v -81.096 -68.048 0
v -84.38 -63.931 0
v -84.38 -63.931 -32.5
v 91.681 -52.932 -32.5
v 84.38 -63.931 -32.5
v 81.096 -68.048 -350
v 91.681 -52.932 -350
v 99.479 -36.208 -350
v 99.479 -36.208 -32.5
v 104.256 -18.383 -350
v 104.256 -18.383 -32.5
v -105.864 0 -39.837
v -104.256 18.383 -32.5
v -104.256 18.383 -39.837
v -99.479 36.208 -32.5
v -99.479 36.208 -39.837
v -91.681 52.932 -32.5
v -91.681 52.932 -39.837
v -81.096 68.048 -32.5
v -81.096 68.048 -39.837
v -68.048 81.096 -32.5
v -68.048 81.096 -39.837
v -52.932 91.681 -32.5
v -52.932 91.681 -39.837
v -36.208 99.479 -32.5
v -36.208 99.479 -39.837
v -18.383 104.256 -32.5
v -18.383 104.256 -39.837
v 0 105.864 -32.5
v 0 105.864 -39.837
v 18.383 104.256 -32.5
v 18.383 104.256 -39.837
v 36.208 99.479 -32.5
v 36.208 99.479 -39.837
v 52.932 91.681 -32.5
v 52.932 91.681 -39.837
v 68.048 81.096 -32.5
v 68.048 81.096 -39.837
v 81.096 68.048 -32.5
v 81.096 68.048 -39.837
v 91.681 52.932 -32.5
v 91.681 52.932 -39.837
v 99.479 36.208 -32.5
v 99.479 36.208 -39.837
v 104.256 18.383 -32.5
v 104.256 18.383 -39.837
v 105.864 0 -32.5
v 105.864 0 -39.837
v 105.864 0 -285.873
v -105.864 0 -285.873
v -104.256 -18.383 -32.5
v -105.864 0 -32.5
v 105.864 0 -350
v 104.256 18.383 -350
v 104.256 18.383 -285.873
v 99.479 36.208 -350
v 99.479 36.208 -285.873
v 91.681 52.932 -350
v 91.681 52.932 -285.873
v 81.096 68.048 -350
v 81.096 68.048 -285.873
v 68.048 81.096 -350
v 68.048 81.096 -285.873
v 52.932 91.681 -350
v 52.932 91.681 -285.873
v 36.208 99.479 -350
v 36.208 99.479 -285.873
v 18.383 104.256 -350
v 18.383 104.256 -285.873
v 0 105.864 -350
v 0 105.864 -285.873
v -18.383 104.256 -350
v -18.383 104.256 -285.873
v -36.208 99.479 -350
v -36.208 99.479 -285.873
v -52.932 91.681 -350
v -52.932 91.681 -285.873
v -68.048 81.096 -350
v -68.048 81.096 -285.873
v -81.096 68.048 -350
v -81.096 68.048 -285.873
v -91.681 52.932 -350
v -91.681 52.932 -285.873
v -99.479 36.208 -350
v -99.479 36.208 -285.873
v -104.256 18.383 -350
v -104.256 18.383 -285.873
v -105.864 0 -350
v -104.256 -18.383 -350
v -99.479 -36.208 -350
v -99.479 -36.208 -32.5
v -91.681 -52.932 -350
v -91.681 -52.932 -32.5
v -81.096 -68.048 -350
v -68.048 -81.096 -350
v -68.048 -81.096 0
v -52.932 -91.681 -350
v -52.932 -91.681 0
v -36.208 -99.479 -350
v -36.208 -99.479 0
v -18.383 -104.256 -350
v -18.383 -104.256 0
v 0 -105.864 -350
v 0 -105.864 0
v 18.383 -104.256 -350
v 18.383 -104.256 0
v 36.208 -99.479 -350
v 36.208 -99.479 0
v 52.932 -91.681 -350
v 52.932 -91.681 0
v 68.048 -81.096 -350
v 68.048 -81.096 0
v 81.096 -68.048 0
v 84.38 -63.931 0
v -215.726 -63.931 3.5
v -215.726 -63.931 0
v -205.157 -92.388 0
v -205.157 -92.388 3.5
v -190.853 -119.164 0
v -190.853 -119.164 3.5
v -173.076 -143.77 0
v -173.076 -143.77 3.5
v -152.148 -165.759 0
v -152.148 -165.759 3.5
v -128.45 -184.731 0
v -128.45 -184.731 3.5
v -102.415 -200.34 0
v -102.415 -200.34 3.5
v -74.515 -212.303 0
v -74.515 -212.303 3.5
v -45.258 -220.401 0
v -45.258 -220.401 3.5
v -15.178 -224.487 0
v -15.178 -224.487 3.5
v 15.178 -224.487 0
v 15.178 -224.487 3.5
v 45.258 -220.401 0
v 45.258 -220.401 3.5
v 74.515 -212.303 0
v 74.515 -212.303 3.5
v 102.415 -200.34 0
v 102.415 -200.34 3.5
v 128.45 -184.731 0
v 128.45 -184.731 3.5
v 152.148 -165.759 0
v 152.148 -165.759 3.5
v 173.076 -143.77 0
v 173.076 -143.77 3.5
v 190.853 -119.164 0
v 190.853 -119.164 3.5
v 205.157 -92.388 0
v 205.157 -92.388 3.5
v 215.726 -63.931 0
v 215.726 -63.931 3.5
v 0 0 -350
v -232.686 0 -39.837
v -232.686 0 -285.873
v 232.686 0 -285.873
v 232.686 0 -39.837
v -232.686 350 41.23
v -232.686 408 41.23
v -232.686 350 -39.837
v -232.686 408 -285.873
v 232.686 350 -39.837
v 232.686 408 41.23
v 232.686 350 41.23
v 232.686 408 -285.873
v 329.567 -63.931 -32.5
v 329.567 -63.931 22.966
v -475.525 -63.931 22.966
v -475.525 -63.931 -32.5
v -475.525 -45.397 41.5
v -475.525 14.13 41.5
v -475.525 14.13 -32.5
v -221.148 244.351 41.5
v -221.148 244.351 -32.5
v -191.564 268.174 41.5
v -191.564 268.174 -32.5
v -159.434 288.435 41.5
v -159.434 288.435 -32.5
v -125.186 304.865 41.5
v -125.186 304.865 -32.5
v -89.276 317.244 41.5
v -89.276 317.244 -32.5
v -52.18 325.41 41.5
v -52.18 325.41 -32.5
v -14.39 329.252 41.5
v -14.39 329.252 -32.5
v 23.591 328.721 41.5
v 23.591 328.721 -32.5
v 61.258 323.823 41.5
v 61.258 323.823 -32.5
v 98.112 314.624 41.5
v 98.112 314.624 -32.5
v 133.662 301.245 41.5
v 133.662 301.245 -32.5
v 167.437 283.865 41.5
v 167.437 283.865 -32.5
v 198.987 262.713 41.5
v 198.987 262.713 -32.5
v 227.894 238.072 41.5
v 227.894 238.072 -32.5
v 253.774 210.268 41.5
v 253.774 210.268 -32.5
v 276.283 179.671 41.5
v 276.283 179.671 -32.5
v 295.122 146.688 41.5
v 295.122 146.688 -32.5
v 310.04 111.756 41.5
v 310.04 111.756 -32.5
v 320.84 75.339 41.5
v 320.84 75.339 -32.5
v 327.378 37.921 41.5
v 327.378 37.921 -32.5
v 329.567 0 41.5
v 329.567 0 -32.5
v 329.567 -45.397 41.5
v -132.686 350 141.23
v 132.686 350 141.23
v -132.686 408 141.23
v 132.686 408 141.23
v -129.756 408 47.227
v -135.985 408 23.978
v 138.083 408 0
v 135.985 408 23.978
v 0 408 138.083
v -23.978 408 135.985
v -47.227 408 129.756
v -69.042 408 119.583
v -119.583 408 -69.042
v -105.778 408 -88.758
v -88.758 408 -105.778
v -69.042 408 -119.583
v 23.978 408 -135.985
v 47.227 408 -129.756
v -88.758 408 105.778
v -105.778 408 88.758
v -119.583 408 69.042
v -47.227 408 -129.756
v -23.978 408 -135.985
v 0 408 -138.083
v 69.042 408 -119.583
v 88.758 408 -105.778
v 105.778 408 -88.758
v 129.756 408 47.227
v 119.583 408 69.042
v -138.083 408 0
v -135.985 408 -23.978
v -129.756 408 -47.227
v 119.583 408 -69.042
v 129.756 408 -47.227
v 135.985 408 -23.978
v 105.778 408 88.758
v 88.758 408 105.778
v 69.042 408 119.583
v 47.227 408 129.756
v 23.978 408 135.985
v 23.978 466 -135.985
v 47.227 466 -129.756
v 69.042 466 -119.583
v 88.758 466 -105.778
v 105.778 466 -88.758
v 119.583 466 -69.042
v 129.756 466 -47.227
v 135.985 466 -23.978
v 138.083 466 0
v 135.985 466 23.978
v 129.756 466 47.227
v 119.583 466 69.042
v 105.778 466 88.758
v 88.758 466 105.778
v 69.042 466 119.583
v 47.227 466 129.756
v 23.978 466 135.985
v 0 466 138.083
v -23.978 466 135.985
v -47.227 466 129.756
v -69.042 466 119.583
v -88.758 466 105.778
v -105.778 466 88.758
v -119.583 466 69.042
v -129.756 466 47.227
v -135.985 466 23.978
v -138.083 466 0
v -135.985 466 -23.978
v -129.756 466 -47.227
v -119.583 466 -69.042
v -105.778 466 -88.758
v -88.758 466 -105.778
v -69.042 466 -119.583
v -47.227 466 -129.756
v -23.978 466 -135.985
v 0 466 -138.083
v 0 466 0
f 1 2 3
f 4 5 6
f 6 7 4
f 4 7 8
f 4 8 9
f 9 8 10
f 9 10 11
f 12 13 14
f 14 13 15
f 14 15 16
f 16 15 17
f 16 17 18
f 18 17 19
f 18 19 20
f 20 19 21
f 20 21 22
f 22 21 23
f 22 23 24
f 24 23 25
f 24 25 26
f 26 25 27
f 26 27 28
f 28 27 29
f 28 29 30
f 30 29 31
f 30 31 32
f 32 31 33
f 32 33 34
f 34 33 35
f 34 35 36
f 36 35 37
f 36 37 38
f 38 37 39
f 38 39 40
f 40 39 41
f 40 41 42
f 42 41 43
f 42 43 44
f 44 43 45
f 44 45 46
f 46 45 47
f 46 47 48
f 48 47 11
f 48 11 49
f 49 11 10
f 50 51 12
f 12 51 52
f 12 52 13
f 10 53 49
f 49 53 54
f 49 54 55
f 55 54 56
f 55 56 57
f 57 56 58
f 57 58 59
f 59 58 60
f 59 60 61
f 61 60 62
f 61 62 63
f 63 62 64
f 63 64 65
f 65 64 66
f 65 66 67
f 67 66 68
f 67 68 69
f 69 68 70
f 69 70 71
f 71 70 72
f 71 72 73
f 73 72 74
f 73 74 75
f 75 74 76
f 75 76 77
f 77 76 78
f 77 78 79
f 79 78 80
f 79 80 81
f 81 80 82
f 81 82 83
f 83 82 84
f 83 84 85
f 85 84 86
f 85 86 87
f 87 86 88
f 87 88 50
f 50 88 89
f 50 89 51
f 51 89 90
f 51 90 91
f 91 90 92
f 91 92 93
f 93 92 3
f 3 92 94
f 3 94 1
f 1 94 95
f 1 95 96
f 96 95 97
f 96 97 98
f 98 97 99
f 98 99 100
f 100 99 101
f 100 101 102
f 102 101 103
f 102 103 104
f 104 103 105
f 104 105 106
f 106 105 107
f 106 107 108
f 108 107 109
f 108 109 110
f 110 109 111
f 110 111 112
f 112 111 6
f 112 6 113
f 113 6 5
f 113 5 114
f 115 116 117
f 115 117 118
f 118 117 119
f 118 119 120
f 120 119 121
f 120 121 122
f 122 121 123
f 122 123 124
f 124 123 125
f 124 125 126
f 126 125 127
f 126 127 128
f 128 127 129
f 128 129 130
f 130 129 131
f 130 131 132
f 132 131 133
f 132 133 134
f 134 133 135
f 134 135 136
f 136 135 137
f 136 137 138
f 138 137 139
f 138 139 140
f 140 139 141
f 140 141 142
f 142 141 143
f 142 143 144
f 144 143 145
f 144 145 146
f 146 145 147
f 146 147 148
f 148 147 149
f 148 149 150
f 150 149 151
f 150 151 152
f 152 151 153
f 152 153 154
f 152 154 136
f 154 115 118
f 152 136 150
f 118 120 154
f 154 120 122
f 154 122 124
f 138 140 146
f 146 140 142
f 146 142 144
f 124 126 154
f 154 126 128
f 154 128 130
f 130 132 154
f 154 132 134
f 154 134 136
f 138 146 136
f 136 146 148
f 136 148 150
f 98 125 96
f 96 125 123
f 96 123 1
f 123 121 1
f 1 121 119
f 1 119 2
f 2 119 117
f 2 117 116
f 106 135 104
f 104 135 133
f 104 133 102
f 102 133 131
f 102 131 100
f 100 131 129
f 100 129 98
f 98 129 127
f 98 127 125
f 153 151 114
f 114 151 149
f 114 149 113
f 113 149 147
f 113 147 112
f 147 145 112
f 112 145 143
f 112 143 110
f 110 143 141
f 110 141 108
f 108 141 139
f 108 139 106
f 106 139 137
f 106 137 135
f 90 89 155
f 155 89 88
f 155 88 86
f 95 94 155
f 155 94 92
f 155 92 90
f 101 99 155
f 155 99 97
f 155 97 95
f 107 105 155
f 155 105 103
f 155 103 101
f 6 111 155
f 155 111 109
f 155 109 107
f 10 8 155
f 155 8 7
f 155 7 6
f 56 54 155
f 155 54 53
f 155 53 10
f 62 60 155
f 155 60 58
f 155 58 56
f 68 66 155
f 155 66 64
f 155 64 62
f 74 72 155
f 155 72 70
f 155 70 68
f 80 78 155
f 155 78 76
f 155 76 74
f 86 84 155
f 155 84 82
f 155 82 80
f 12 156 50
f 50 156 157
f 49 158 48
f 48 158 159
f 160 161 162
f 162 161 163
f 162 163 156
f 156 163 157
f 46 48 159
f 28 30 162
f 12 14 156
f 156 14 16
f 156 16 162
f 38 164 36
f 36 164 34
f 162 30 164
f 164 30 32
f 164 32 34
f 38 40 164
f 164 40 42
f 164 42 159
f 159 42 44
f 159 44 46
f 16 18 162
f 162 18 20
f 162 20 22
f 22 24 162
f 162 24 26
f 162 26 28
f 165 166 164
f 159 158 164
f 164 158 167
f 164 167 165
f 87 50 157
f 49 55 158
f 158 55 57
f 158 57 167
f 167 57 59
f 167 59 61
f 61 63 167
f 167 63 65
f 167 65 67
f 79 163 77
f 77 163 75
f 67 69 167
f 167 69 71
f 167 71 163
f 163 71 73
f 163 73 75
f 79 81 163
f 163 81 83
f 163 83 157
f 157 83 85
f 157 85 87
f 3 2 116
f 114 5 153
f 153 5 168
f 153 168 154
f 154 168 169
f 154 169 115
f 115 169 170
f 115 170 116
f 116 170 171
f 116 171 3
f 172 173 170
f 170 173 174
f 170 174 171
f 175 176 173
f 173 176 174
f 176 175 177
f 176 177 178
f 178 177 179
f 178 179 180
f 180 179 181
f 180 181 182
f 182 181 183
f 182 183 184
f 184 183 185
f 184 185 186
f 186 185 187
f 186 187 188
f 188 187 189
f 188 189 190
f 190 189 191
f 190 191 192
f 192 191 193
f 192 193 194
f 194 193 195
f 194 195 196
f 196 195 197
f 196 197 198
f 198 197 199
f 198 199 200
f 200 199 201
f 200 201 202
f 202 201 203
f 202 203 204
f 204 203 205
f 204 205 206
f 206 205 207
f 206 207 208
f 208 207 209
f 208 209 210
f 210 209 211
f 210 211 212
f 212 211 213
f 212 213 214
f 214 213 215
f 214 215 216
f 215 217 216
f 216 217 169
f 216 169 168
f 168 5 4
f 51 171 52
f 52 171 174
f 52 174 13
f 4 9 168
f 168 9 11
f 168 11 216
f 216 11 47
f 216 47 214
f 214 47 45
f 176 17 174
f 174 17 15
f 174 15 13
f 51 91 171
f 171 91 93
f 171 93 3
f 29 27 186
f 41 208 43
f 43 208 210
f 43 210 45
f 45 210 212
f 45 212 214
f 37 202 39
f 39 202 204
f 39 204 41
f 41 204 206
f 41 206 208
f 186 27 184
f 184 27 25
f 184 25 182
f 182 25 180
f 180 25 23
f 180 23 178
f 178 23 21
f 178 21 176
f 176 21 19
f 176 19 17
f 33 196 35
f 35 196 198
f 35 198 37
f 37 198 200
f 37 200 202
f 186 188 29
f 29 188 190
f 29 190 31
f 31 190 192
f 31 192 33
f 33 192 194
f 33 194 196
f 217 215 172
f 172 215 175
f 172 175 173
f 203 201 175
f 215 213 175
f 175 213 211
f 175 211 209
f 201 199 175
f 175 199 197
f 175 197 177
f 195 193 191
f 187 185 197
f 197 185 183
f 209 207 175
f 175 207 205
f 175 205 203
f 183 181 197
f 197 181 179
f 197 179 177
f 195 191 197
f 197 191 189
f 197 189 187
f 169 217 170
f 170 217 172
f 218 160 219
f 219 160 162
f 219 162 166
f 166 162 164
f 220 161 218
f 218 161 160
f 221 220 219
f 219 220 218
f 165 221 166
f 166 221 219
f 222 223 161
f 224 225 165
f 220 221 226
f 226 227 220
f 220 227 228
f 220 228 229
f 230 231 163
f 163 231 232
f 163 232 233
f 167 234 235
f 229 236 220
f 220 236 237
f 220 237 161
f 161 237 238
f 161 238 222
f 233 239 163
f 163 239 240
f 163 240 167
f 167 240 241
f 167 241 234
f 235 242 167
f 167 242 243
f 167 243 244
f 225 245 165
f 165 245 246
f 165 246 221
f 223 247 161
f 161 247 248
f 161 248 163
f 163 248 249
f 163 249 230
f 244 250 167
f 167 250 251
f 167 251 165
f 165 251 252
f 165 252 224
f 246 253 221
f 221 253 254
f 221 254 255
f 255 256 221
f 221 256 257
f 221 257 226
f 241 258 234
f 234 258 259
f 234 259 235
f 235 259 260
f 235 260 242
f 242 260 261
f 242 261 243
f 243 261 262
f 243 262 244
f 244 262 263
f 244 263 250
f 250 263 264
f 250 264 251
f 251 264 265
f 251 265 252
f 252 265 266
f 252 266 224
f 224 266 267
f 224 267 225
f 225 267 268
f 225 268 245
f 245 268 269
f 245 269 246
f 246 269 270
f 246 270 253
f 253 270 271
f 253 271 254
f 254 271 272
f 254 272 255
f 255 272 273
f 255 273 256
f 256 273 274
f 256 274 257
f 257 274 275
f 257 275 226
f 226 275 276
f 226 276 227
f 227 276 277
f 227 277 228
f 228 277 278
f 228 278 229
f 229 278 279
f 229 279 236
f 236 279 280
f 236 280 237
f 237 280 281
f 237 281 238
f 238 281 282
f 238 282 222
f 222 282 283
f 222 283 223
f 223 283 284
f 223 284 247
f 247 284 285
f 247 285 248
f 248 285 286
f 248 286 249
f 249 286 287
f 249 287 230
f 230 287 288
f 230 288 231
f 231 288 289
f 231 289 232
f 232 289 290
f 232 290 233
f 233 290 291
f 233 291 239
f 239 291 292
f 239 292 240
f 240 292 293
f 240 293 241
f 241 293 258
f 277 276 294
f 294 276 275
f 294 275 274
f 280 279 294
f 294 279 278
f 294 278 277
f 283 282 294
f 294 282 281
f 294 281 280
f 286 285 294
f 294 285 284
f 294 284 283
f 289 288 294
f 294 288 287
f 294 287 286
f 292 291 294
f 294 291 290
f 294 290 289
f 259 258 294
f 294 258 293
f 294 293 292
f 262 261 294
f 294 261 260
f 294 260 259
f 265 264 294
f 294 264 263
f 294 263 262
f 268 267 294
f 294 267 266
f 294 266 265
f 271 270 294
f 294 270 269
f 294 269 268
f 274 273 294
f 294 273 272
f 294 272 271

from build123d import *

# Parameters (mm, degrees)
SKETCH1_R                = 225
BOSS_EXTRUDE1_DEPTH      = 3.5
SKETCH2_R                = 105.863842181
BOSS_EXTRUDE2_DEPTH      = 350
SKETCH3_W                = 465.371554394
SKETCH3_H                = 246.036459022
BOSS_EXTRUDE3_DEPTH      = 350
BOSS_EXTRUDE4_DEPTH      = 38
BOSS_EXTRUDE4_DEPTH_BACK = 36
CUT_EXTRUDE1_DEPTH       = 1011
BOSS_EXTRUDE5_DEPTH      = 58
SKETCH7_R                = 138.083103167
BOSS_EXTRUDE6_DEPTH      = 58


with BuildPart() as part:
    # Sketch1 → Boss-Extrude1 (new body)
    with BuildSketch(Plane.XY):
        Circle(SKETCH1_R)
    extrude(amount=BOSS_EXTRUDE1_DEPTH)

    # Sketch2 → Boss-Extrude2 (add)
    with BuildSketch(Plane(origin=(0, 0, 0), x_dir=(-1, 0, 0), z_dir=(0, 0, -1))):
        Circle(SKETCH2_R)
    extrude(amount=BOSS_EXTRUDE2_DEPTH)

    # Sketch3 → Boss-Extrude3 (add)
    with BuildSketch(Plane(origin=(0, 0, 0), x_dir=(1, 0, 0), z_dir=(0, 1, 0))):
        with Locations((0, 162.855088027)):
            Rectangle(SKETCH3_W, SKETCH3_H)
    extrude(amount=BOSS_EXTRUDE3_DEPTH)

    # Sketch4 → Boss-Extrude4 (add, two sides: drawn at the far end of the back side and taken through both)
    with BuildSketch(Plane.XY.offset(3.5).offset(-BOSS_EXTRUDE4_DEPTH_BACK)):
        with BuildLine():
            Line((-475.524623773, -63.931124179), (329.566599898, -63.931124179))
            Line((329.566599898, -63.931124179), (329.566599898, 0))
            ThreePointArc((329.566599898, 0), (133.661871779, 301.245162287), (-221.148477595, 244.351170707))
            Line((-221.148477595, 244.351170707), (-475.524623773, 14.129652631))
            Line((-475.524623773, 14.129652631), (-475.524623773, -63.931124179))
        make_face()
    extrude(amount=BOSS_EXTRUDE4_DEPTH + BOSS_EXTRUDE4_DEPTH_BACK)

    # Sketch5 → Cut-Extrude1 (cut)
    with BuildSketch(Plane(origin=(329.566599898, 0, 0), x_dir=(0, 0, -1), z_dir=(1, 0, 0))):
        Polygon((-41.5, -63.931124179), (-41.5, -45.396753324), (-22.965629146, -63.931124179), align=None)
    extrude(amount=-CUT_EXTRUDE1_DEPTH, mode=Mode.SUBTRACT)

    # Sketch6 → Boss-Extrude5 (add)
    with BuildSketch(Plane(origin=(0, 350, 0), x_dir=(1, 0, 0), z_dir=(0, 1, 0))):
        Polygon((-232.685777197, 285.873317538), (232.685777197, 285.873317538), (232.685777197, -41.230401705), (132.685777197, -141.230401705), (-132.685777197, -141.230401705), (-232.685777197, -41.230401705), align=None)
    extrude(amount=BOSS_EXTRUDE5_DEPTH)

    # Sketch7 → Boss-Extrude6 (add)
    with BuildSketch(Plane(origin=(0, 408, 0), x_dir=(1, 0, 0), z_dir=(0, 1, 0))):
        with Locations(Location((0, 0, 0), (0, 0, 270))):
            Circle(SKETCH7_R)
    extrude(amount=BOSS_EXTRUDE6_DEPTH)


solid = part.part
